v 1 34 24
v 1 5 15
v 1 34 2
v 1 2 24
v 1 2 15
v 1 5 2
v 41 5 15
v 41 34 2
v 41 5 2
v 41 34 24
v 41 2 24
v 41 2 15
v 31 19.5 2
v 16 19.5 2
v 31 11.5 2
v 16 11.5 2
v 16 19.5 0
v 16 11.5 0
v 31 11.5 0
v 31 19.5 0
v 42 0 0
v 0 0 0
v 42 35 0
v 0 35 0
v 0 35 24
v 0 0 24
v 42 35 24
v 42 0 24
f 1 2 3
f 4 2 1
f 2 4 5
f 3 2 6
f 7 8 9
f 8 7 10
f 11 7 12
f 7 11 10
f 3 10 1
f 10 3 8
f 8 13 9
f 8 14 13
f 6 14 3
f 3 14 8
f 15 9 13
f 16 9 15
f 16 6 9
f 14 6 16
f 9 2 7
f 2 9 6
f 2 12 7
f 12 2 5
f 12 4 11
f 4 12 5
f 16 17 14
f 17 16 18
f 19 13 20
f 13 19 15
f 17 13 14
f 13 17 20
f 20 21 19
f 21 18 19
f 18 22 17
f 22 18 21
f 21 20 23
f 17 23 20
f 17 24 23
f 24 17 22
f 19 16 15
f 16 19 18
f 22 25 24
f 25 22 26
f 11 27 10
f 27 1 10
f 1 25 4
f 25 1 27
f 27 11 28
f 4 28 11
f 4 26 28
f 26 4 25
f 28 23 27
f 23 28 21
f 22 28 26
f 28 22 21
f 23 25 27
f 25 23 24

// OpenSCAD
// file: ../library_deh/deh_shapes.scad
/* **** deh_shapes.scad *****
   * Library of useful shapes
   * 20170512
*/


/*  ***** tubedeh *****
d1 = outside diameter
d2 = inside diameter
ht = height
reference is center of tube, bottom
*/
module tubedeh(d1,d2,ht)
{
   difference()
   {
     cylinder(d = d1, h = ht, center = false);
     cylinder(d = d2, h = ht + .001, center = false);
   }
}
/* ***** rounded_bar *****
 * rectangular bar with rounded end
bar with one end rounded
rounded_bar(d, l, h)
d = diameter of rounded end, and width of bar
l = length of bar from center of rounded end to end
h = thickness (height) of bar
reference is center of rounded end, bottom
*/
module rounded_bar(d, l, h)
{
    // Rounded end
    cylinder(d = d, h = h, center = false);
    // Bar
    translate([0, -d/2, 0])
       cube([l, d, h],false);
}
/* ***** eyebar *****
 * rounded bar with hole in rounded end
 * module eye_bar(d1, d2, len, ht)
d1 = outside diameter of rounded end, and width of bar
d2 = diameter of hole in end of bar
*/
module eye_bar(d1, d2, len, ht)
{
   difference()
   {   
      rounded_bar(d1,len,ht);
      cylinder(d = d2, h = ht + .001, center = false);
   }
}
/* ***** rounded_rectangle ******
rounded_rectangle(l,w,h,rad);
l = length (x direction)
w = width (y direction)
h = thickness (z direction)
rad = radius of corners
reference = center of rectangle x,y, bottom
*/
module rounded_rectangle(l,w,h,rad)
{
  translate([-(l-rad)/2,-(w-rad)/2,0])
  {
    // Four rounded edges
    translate([0,0,0])
      rounded_bar(rad*2,l-rad,h);
    translate([l-rad,0,0])
      rotate([0,0,90])
      rounded_bar(rad*2,w-rad,h);
    translate([l-rad,w-rad,0])
      rotate([0,0,180])
      rounded_bar(rad*2,l-rad,h);
    translate([0,w-rad,0])
      rotate([0,0,-90])
      rounded_bar(rad*2,w-rad,h);
    // Fill in center
    translate([0,0,0])
      cube([l-rad + .01,w-rad + .01,h],false);
  }
}

/* ***** rounded rim *****
module rounded_rim(l,w,h,rad,tk);
l = length (inside, x direction)
w = width (inside, y direction)
h = thickness (z direction)
rad = radius of corners
tk = thickness of rim wall
*/
module rounded_rim(l,w,h,rad,tk)
{
  difference()
  {
    rounded_rectangle(l+2*tk,w+2*tk,h,rad);
    rounded_rectangle(l, w, h, rad);
  }
}

/* ***** wedge *****
l = length
w = width
h = height/thickness
*/
 module wedge(l, w, h)
 {
   polyhedron(
      points=[[0,0,0], [l,0,0], [l,w,0], [0,w,0], [0,w,h], [l,w,h]],
       faces=[[0,1,2,3],[5,4,3,2],[0,4,5,1],[0,3,4],[5,2,1]] );
 }
/* ***** rounded_triangle *****
 * l1 = side 1
 * l2 = side 2
 * l3 = side 3
 * h  = height/thickness
 * rad = radius of rounded corners
 */
module rounded_triangle(l1,l2,l3,h,rad)
{
  // Compute rotation angles
  al3 = acos((l1*l1 + l2*l2 - l3*l3)/(2 * l1 * l2));
  al1 = acos((l2*l2 + l3*l3 - l1*l1)/(2 * l2 * l3));
  al2 = acos((l3*l3 + l1*l1 - l2*l2)/(2 * l3 * l1));
  // Setup bars for edges
  translate([0,0,0])
    rotate([0,0,0])
      rounded_bar(rad,l3,h);
  translate([l3,0,0])
    rotate([0,0,180-al2])
      rounded_bar(rad,l1,h);
  rotate([0,0,al1])
    translate([l2,0,0])
      rotate([0,0,180])
        rounded_bar(rad,l2,h);
  // Fill in center
    triangle(l1,l2,l3,h);
}
/* ***** triangle *****
 * l1 = side 1
 * l2 = side 2
 * l3 = side 3
 * h  = height/thickness
 */
module triangle(l1,l2,l3,h)
{
  // Compute rotation angle
  al1 = acos((l2*l2 + l3*l3 - l1*l1)/(2 * l2 * l3));
  
  linear_extrude(height = h)
  polygon(points = [[0,0],[l3,0],[l2*cos(al1),l2*sin(al1)]]);
}
/* ***** chamfered hole *****
 * Punch hole with chamfer on one end
 * d1 = main hole diameter
 * d2 = hole diameter at chamfered end
 * ht1 = height of whole hole
 * ht2 = depth of  chamfer
*/
module chamfered_hole(d1,d2,ht1,ht2)
{
   rotate_extrude(convexity = 10)
     polygon(points = [[0,0],[d1/2,0],[d1/2,ht1-ht2],[d2/2,ht1],[0,ht1]]);

}

/* ***** fillet *****
 * r = radius of fillet
 * l = length of fillet
 fillet (r,l);
*/
module fillet(r,l)
{
   difference()
   {
     union()
     {
       cube([2*r,2*r,l]);
     }
     union()
     {
       translate ([r,r,0])
           cylinder(d = 2*r + 0.1, h = l, center = false);
       translate([r,0,0])
           cube([r,2*r,l],center = false);
       translate([0,r,0])
           cube([2*r,r,l],center = false);
     }
   }
}
/* ***** circular chamfer *****
 * d = outer diameter
 * rad = chamfer radius
 * circular_chamfer(d, rad);
*/
module circular_chamfer(d, rad)
{
  ofs = (d/2 - rad);
  rotate_extrude()
  translate([ofs,0])
   difference()
   {
     union()
     {
       square(size = [rad, rad]);
     }
     union()
     {
       translate ([0,rad ])
           circle(d = 2*rad + 0.1);
     }
   }
}
module circular_inner_chamfer(d, rad)
{
  circular_chamfer(d, rad);
} 

/* ***** circular chamfer *****
 * d = inner diameter
 * rad = chamfer radius
 * circular_chamfer(d, rad);
*/
module circular_outer_chamfer(d, rad)
{
  ofs = (d/2 - rad);
  rotate_extrude()
  translate([ofs,0])
   difference()
   {
     union()
     {
       square(size = [rad, rad]);
     }
     union()
     {
       translate ([rad,rad ])
           circle(d = 2*rad + 0.1);
     }
   }
}
// main file
/* File: L01Z.scad
 * Box for holding Tamura L01Z current sensor w cable
 * Author: deh
 * Latest edit: 20180708
 */

include <../library_deh/deh_shapes.scad>

 $fn=50;

he_len = 38;
he_wid = 27;
he_ht  = 12+6+4;
wn_len = 15;
wn_wid = 8;
wn_ofx = he_len - wn_len - 9;
wn_ofy = 9.5;
pn_wid = 4;
pn_len = 5;
pn_ofx = 38-14.5-12.8+3;

sh_wall = 2;  //  Shell wall thickness
sh_bot  = 2;  // Bottom thickness
sh_len  = he_len + 2*sh_wall; // Outside length
sh_wid  = he_wid + 2*sh_wall + pn_wid; // Outside width
sh_ht   = he_ht + sh_bot;     // Height including base

cb_ht  = 12+3; // 


module shell()
{
	difference()
	{
		union()
		{
 			// Main shell block
			cube([sh_len,sh_wid,sh_ht],center=false);
		}
		union()
		{
			// Tamura fits inside
			len1 = he_len + 2;
			wid1 = he_wid + 2;
         ht1  = 50;
         ofx1 = sh_wall -1;
         ofy1 = sh_wall - 1 + pn_wid;
         ofz1 = sh_bot + he_ht - 4;
			translate([ofx1,ofy1,sh_bot])
			   cube([len1,wid1,ht1],center=false);

			// Cable area
         len2 = len1;
         wid2 = pn_wid;
         ofx2 = ofx1;
			ofy2 = sh_wall;
         ofz2 = cb_ht;
			translate([ofx2,ofy2,ofz2])
			   cube([len2,wid2,ht1],center=false);

			// current wire window
			len3 = wn_len;
			wid3 = wn_wid;
         ht1  = 50;
         ofx3 = sh_wall + wn_ofx ;
         ofy3 = sh_wall + wn_ofy;
			translate([ofx3,ofy3, 0])
			   cube([len3,wid3,ht1],center=false);
		}
	}
}

shell();
